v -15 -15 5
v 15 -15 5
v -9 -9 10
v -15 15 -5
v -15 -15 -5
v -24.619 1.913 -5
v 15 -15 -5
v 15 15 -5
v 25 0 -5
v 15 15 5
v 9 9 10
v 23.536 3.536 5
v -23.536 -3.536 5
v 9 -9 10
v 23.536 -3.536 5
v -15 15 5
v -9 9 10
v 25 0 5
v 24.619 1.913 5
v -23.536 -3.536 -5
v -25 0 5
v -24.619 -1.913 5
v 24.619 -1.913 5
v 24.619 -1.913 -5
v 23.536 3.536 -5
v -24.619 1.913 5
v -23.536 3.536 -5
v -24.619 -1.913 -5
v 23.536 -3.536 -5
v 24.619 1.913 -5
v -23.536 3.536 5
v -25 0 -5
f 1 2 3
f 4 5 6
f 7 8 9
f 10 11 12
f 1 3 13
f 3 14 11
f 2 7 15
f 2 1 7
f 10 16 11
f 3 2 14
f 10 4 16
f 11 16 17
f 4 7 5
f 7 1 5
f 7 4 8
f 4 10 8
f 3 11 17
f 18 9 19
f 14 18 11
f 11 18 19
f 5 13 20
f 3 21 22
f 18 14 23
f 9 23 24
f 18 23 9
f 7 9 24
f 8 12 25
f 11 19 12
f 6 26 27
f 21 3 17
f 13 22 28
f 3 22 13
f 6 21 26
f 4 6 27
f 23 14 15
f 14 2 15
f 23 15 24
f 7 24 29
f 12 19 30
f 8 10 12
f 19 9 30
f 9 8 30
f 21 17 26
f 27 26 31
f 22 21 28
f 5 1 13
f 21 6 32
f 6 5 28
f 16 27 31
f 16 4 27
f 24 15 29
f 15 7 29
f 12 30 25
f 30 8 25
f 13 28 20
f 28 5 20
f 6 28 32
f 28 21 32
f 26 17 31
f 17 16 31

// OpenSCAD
hull() {
  translate([0,0,0]) cube([30,30,10], center=true);
  translate([0,0,8]) cube([18,18,4], center=true);
  translate([20,0,0]) cylinder(d=10,h=10,center=true);
  translate([-20,0,0]) cylinder(d=10,h=10,center=true);
}
